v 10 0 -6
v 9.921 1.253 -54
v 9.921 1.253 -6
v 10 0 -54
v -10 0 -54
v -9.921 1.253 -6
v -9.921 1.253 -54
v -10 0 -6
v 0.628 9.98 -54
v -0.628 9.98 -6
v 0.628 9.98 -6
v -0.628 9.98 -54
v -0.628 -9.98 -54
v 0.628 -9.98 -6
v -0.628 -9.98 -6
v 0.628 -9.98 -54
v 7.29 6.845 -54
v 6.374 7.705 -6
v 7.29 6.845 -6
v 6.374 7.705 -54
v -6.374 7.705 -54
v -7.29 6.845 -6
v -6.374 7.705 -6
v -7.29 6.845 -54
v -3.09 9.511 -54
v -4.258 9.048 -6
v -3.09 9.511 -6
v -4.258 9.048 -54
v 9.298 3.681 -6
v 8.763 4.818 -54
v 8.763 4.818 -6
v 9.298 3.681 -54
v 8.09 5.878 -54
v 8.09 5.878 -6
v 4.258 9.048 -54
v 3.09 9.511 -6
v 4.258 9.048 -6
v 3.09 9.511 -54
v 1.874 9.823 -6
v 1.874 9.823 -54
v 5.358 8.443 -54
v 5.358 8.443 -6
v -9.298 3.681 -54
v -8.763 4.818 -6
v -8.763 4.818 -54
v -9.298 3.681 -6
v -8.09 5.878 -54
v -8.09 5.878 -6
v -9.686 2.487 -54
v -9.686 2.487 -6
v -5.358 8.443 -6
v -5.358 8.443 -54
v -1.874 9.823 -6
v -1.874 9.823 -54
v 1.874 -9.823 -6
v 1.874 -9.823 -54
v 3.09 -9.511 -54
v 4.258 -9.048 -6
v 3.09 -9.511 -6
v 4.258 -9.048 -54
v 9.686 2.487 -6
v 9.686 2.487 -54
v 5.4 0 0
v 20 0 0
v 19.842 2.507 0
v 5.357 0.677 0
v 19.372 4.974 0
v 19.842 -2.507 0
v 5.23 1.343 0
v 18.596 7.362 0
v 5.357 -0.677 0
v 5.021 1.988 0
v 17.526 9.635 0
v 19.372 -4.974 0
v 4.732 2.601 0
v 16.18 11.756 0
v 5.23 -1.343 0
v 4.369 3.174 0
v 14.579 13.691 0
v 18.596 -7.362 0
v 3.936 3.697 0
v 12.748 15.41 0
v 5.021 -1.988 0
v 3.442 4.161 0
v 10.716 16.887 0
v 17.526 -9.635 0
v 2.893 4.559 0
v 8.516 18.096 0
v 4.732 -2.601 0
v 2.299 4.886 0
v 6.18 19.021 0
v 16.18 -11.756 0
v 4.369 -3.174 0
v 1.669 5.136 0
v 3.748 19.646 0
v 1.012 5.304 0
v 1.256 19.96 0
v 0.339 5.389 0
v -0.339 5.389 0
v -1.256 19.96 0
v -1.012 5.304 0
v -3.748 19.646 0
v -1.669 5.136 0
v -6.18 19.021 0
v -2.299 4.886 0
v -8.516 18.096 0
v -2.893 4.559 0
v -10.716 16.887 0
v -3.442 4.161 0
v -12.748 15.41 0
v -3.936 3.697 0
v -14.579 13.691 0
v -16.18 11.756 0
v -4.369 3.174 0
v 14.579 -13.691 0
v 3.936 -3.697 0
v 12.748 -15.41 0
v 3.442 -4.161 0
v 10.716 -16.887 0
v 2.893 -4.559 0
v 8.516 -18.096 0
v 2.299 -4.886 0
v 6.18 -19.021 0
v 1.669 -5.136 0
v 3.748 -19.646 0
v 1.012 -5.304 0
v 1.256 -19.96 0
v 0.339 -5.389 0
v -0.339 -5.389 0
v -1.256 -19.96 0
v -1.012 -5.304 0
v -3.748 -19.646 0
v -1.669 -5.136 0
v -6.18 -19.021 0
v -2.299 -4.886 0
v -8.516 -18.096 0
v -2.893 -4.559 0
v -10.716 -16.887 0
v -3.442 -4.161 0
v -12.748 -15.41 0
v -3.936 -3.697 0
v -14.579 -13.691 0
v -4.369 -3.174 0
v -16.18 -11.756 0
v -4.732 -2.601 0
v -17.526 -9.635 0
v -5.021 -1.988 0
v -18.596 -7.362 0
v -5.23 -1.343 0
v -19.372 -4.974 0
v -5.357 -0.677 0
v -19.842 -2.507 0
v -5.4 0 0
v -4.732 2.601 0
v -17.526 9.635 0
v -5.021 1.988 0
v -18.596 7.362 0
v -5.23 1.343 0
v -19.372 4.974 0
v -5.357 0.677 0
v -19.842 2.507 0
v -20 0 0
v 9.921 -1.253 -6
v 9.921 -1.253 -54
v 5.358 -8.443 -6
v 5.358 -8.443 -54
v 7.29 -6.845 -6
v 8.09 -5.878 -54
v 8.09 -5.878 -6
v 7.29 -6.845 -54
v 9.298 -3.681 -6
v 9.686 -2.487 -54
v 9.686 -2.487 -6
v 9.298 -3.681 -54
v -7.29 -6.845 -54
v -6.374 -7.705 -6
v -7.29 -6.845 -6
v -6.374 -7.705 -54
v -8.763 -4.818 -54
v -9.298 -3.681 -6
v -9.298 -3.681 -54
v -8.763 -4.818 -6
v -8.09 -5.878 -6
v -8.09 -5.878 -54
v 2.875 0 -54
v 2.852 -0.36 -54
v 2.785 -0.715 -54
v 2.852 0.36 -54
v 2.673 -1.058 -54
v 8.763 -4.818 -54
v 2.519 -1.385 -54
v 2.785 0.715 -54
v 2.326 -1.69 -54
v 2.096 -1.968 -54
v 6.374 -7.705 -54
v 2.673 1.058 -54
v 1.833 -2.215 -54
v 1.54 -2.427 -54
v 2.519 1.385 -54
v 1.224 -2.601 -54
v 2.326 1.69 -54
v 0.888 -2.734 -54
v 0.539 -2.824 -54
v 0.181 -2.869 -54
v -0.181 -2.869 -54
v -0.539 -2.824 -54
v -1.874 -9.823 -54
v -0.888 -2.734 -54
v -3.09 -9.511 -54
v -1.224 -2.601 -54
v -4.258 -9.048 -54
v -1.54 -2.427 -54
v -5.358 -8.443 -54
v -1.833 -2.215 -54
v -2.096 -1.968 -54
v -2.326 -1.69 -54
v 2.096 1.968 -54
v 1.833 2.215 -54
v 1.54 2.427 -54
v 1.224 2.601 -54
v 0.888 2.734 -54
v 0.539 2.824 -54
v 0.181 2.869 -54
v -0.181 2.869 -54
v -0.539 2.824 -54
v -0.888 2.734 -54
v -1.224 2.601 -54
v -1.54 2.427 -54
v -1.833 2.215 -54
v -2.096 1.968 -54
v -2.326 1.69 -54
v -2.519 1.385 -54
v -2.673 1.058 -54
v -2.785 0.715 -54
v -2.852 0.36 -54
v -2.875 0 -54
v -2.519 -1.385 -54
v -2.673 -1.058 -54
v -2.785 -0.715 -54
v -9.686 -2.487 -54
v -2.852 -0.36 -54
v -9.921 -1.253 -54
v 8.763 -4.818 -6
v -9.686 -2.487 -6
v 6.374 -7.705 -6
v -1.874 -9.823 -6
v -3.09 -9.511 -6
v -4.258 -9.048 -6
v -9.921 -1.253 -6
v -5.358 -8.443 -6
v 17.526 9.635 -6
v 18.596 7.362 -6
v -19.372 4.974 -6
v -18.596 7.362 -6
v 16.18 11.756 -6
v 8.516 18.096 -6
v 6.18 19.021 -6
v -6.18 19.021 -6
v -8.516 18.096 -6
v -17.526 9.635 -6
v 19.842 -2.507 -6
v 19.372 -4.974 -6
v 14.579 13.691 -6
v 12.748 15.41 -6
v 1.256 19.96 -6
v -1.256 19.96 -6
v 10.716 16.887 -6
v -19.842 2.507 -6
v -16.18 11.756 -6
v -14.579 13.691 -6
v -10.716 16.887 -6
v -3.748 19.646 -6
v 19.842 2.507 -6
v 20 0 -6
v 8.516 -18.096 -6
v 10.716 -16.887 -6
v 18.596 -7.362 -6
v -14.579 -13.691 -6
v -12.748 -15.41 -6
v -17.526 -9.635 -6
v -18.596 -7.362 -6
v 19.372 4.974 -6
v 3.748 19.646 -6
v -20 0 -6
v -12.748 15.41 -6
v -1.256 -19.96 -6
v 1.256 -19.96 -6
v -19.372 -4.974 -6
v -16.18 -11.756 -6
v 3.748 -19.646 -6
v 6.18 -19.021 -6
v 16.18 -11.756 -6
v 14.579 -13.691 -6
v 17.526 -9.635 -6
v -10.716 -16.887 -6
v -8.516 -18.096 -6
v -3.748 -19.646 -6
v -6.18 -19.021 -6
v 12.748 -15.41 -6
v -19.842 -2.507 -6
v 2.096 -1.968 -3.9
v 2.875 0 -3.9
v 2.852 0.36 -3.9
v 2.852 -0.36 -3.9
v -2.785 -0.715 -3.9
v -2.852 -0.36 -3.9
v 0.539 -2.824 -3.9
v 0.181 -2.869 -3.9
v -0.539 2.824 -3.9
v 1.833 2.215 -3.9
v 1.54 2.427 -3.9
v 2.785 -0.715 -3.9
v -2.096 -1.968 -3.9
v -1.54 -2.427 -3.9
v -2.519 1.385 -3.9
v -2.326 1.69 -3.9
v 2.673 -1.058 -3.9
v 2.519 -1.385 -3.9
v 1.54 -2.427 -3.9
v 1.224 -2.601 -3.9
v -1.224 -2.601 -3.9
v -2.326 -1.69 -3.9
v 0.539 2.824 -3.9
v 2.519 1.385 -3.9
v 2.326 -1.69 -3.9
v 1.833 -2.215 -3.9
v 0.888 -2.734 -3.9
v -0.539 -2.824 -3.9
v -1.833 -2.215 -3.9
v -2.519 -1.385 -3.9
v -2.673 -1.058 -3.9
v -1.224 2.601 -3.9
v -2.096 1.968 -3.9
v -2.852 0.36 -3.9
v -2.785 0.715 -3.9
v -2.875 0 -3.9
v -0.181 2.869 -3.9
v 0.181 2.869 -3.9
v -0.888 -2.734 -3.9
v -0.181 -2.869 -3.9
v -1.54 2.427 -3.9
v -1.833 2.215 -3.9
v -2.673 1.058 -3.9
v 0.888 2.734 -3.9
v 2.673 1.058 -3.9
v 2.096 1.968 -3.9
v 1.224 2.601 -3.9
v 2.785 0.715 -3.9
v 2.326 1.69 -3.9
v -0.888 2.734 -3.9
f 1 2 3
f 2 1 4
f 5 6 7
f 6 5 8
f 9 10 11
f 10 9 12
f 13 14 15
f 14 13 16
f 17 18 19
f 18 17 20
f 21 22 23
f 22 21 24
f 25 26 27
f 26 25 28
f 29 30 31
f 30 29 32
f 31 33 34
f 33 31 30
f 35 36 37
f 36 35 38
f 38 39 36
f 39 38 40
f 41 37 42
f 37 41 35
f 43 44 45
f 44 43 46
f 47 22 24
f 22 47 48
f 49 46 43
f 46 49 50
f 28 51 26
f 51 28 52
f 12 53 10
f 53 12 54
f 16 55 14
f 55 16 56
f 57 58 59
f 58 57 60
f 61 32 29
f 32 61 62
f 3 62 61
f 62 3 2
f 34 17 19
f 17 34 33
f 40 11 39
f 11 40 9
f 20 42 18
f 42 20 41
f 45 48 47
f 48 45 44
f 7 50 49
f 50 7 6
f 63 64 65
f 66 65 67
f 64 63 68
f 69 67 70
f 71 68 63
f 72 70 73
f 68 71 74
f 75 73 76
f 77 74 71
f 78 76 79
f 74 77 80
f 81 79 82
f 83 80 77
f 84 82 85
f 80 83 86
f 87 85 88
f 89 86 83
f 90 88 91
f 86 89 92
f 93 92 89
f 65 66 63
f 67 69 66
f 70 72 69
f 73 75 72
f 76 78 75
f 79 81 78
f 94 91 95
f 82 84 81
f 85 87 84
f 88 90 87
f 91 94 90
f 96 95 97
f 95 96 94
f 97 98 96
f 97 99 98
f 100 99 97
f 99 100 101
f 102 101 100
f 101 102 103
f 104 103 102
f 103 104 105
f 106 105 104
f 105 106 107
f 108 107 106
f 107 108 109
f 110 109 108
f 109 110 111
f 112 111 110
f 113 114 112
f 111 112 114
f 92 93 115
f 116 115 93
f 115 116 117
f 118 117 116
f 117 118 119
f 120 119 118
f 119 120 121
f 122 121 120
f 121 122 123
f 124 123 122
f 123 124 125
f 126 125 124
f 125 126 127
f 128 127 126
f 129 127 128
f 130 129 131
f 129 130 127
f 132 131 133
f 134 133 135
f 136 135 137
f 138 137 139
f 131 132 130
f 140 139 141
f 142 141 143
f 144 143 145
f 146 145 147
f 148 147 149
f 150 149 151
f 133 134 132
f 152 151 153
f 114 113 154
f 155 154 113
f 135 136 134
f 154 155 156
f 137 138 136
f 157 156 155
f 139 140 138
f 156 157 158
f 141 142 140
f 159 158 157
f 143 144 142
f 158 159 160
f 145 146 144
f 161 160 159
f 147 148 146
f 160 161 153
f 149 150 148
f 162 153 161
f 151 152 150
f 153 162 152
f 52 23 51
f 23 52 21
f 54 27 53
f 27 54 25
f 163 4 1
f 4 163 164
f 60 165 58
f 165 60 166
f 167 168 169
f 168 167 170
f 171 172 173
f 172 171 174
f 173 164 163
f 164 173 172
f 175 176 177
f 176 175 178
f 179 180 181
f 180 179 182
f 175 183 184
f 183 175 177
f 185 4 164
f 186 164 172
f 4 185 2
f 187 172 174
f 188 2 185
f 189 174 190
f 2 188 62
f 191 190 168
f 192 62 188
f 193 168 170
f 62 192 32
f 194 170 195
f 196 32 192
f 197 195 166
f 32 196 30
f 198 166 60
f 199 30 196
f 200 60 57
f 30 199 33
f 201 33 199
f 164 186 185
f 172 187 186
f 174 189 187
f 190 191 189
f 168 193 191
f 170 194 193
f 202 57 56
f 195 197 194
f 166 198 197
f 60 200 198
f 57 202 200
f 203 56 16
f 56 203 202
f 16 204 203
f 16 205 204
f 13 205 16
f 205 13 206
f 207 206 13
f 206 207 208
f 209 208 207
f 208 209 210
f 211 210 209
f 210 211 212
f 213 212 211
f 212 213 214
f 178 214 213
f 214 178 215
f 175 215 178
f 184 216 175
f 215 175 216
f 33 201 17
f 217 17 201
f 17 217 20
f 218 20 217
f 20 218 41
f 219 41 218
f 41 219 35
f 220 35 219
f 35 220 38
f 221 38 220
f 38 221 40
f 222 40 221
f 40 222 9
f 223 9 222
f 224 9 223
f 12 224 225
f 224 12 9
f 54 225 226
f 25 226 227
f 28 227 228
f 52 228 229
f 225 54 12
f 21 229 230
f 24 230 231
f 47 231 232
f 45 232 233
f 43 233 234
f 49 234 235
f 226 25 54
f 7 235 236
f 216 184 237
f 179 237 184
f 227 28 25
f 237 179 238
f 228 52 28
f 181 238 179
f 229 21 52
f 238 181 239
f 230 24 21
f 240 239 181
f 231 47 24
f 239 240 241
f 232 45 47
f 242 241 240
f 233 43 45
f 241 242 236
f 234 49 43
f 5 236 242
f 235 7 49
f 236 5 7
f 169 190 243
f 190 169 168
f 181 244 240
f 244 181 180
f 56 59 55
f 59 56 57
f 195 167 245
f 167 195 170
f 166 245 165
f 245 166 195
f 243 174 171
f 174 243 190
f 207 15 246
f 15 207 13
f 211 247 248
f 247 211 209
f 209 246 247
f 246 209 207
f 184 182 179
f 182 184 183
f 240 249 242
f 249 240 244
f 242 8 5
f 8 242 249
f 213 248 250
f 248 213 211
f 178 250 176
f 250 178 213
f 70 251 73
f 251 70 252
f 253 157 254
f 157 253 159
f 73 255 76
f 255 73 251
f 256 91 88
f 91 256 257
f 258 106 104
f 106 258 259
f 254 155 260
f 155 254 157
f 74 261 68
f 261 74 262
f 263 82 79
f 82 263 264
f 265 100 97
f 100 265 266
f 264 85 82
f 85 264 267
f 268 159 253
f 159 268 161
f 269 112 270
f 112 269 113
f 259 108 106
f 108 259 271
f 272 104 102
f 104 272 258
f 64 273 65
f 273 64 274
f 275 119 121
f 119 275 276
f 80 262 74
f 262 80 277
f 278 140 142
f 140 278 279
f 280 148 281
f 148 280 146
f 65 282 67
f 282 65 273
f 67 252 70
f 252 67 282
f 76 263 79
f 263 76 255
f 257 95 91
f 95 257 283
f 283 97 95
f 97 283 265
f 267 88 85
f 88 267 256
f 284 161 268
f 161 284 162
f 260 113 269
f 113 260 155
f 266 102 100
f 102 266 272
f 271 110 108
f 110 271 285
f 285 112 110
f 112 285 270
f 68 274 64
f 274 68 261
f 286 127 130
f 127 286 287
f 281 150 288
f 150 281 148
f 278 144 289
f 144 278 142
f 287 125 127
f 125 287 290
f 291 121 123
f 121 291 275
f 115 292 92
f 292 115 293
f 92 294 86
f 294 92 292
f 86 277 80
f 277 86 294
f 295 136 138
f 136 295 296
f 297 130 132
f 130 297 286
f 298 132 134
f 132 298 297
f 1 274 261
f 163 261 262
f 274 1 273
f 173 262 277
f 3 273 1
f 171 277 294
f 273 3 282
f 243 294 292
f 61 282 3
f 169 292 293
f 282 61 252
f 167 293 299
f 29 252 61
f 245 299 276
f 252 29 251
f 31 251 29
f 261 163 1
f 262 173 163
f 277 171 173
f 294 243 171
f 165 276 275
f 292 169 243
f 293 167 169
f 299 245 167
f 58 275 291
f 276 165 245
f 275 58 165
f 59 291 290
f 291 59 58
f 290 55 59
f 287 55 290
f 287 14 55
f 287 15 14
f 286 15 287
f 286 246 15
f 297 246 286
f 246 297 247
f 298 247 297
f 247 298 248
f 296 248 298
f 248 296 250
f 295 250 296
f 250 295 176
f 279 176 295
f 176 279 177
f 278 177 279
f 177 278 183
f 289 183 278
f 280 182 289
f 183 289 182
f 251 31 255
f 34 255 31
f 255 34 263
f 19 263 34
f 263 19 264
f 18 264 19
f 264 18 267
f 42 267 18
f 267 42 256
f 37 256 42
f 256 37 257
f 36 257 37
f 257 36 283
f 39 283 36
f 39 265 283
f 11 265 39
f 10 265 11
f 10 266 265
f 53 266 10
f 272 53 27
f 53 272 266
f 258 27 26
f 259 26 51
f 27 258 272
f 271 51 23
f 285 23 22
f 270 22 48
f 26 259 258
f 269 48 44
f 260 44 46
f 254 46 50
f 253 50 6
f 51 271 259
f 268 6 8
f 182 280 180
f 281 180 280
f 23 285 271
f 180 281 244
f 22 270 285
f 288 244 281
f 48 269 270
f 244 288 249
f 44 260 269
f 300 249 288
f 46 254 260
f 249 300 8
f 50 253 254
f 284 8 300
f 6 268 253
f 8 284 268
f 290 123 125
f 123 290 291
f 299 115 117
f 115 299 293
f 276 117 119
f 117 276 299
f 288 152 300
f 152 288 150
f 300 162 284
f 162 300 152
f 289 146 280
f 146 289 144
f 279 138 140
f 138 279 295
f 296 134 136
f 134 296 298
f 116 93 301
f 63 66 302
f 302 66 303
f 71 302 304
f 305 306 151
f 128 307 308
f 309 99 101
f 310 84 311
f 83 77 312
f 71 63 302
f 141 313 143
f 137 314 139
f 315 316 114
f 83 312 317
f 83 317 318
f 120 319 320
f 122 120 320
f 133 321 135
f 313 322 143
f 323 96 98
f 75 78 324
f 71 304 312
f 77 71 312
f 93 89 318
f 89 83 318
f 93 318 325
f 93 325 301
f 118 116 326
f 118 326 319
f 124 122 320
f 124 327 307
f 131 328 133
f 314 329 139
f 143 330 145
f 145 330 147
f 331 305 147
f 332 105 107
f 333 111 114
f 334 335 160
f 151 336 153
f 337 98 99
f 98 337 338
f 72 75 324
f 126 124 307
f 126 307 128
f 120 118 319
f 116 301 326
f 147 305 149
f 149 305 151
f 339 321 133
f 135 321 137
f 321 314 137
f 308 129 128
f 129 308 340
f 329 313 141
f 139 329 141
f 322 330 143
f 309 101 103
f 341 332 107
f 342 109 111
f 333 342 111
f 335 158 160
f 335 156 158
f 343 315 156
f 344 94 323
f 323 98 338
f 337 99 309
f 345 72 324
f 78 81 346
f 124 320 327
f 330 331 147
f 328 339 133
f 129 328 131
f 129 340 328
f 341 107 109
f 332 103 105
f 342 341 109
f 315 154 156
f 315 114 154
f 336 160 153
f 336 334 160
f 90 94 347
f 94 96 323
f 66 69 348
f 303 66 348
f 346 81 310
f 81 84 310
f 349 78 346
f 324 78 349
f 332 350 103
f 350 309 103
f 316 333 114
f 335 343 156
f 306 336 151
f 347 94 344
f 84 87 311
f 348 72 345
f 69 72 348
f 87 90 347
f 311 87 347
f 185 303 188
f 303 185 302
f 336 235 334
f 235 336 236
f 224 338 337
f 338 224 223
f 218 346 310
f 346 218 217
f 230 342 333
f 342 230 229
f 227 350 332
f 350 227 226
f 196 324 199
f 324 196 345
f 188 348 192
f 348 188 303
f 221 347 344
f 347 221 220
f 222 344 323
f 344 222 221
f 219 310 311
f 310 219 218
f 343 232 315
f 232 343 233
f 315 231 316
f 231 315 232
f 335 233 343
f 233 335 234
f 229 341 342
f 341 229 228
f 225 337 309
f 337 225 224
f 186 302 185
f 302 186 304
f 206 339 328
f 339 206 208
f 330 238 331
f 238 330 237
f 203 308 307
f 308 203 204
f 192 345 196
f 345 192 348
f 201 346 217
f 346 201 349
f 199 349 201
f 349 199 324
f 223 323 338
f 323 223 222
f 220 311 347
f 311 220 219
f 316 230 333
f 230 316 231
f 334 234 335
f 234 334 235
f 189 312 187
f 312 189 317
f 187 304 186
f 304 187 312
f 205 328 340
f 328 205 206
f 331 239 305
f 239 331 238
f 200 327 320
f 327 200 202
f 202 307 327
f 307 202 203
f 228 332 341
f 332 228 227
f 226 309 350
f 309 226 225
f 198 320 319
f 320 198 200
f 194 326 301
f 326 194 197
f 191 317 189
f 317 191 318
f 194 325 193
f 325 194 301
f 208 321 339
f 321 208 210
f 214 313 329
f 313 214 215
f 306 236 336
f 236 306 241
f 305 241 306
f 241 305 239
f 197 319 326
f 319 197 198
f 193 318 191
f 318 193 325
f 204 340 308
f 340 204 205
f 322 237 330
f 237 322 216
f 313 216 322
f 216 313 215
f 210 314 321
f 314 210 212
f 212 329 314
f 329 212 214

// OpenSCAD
$fn = 50;


difference() {
	union() {
		translate(v = [0, 0, -54.0000000000]) {
			cylinder(h = 54, r = 10.0000000000);
		}
		translate(v = [0, 0, -6.0000000000]) {
			cylinder(h = 6, r = 20.0000000000);
		}
	}
	union() {
		translate(v = [0, 0, 0]) {
			rotate(a = [0, 0, 0]) {
				difference() {
					union() {
						#translate(v = [0, 0, -54.0000000000]) {
							cylinder(h = 54, r = 2.6000000000);
						}
						#translate(v = [0, 0, -3.9000000000]) {
							cylinder(h = 3.9000000000, r1 = 2.8750000000, r2 = 5.4000000000);
						}
						#translate(v = [0, 0, -54.0000000000]) {
							cylinder(h = 54, r = 2.8750000000);
						}
						#translate(v = [0, 0, -54.0000000000]) {
							cylinder(h = 54, r = 2.6000000000);
						}
					}
					union();
				}
			}
		}
	}
}
